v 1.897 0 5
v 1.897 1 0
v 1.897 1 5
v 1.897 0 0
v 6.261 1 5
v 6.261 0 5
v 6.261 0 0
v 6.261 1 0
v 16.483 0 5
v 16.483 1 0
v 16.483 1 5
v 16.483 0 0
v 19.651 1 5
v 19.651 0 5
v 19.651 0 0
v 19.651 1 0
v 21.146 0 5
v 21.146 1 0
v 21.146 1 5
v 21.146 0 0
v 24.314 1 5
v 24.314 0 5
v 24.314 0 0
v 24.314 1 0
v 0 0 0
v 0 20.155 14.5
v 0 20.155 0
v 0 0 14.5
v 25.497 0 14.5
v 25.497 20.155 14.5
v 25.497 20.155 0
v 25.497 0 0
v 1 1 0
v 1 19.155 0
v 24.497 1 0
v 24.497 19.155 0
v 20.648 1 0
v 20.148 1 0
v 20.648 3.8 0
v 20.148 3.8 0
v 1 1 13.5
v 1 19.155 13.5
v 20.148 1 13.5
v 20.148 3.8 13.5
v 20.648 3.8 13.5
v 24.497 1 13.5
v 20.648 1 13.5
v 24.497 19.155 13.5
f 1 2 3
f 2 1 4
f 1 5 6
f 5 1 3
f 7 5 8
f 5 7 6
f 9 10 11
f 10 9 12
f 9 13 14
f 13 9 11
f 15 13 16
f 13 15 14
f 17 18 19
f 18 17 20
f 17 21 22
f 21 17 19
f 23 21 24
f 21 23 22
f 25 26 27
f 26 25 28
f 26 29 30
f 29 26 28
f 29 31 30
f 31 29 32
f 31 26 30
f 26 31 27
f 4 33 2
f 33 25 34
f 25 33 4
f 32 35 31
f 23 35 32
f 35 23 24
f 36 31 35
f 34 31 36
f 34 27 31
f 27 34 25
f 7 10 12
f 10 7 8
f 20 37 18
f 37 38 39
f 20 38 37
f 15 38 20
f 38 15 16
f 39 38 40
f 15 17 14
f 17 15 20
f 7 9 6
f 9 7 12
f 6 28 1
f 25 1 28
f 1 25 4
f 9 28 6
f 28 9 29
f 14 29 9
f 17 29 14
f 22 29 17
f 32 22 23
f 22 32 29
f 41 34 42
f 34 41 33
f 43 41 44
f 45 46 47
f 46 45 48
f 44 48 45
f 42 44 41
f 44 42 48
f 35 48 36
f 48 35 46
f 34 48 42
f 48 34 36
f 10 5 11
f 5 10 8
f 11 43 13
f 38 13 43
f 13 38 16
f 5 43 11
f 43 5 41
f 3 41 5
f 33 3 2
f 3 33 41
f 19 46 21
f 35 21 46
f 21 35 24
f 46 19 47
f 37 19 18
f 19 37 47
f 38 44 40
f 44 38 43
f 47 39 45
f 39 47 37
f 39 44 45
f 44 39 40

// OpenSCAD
xdim = 23.497;
ydim = 18.155;
zdim = 13.5; 
wt = 1;
a = 0.897;
b = 4.364;
c = 10.222;
d = 3.168;
e = 1.495;
f = 3.168;

conn_pos = [a, a+b+c, a+b+c+d+e];
conn_dim = [
    [b, 5],
    [d, 5],
    [f, 5]
];

div_width = 0.5;
div_reach = 2.8;
div_pos = a+b+c+d+(e/2)-(div_width/2);

translate([wt + div_pos, wt, 0]) {
    cube(size=[div_width, div_reach, zdim]);
}

difference() {
    cube(size=[ xdim + (2 * wt),
                ydim + (2 * wt),
                zdim + wt]);
    translate([wt,wt,-1]) {
        cube(size=[ xdim,
                    ydim,
                    zdim + 1]);
    }
    conn_cuts();
}

module conn_cuts() {
    translate([wt, -1, 0]) {
        for(i = [0:1:len(conn_pos) - 1]) {
            translate([ conn_pos[i], 0, -wt]) {
                cube([  conn_dim[i][0],
                        wt + 2,
                        conn_dim[i][1] + 1]);
            }
        }
    }
}

//color("red")    conn_cuts();
